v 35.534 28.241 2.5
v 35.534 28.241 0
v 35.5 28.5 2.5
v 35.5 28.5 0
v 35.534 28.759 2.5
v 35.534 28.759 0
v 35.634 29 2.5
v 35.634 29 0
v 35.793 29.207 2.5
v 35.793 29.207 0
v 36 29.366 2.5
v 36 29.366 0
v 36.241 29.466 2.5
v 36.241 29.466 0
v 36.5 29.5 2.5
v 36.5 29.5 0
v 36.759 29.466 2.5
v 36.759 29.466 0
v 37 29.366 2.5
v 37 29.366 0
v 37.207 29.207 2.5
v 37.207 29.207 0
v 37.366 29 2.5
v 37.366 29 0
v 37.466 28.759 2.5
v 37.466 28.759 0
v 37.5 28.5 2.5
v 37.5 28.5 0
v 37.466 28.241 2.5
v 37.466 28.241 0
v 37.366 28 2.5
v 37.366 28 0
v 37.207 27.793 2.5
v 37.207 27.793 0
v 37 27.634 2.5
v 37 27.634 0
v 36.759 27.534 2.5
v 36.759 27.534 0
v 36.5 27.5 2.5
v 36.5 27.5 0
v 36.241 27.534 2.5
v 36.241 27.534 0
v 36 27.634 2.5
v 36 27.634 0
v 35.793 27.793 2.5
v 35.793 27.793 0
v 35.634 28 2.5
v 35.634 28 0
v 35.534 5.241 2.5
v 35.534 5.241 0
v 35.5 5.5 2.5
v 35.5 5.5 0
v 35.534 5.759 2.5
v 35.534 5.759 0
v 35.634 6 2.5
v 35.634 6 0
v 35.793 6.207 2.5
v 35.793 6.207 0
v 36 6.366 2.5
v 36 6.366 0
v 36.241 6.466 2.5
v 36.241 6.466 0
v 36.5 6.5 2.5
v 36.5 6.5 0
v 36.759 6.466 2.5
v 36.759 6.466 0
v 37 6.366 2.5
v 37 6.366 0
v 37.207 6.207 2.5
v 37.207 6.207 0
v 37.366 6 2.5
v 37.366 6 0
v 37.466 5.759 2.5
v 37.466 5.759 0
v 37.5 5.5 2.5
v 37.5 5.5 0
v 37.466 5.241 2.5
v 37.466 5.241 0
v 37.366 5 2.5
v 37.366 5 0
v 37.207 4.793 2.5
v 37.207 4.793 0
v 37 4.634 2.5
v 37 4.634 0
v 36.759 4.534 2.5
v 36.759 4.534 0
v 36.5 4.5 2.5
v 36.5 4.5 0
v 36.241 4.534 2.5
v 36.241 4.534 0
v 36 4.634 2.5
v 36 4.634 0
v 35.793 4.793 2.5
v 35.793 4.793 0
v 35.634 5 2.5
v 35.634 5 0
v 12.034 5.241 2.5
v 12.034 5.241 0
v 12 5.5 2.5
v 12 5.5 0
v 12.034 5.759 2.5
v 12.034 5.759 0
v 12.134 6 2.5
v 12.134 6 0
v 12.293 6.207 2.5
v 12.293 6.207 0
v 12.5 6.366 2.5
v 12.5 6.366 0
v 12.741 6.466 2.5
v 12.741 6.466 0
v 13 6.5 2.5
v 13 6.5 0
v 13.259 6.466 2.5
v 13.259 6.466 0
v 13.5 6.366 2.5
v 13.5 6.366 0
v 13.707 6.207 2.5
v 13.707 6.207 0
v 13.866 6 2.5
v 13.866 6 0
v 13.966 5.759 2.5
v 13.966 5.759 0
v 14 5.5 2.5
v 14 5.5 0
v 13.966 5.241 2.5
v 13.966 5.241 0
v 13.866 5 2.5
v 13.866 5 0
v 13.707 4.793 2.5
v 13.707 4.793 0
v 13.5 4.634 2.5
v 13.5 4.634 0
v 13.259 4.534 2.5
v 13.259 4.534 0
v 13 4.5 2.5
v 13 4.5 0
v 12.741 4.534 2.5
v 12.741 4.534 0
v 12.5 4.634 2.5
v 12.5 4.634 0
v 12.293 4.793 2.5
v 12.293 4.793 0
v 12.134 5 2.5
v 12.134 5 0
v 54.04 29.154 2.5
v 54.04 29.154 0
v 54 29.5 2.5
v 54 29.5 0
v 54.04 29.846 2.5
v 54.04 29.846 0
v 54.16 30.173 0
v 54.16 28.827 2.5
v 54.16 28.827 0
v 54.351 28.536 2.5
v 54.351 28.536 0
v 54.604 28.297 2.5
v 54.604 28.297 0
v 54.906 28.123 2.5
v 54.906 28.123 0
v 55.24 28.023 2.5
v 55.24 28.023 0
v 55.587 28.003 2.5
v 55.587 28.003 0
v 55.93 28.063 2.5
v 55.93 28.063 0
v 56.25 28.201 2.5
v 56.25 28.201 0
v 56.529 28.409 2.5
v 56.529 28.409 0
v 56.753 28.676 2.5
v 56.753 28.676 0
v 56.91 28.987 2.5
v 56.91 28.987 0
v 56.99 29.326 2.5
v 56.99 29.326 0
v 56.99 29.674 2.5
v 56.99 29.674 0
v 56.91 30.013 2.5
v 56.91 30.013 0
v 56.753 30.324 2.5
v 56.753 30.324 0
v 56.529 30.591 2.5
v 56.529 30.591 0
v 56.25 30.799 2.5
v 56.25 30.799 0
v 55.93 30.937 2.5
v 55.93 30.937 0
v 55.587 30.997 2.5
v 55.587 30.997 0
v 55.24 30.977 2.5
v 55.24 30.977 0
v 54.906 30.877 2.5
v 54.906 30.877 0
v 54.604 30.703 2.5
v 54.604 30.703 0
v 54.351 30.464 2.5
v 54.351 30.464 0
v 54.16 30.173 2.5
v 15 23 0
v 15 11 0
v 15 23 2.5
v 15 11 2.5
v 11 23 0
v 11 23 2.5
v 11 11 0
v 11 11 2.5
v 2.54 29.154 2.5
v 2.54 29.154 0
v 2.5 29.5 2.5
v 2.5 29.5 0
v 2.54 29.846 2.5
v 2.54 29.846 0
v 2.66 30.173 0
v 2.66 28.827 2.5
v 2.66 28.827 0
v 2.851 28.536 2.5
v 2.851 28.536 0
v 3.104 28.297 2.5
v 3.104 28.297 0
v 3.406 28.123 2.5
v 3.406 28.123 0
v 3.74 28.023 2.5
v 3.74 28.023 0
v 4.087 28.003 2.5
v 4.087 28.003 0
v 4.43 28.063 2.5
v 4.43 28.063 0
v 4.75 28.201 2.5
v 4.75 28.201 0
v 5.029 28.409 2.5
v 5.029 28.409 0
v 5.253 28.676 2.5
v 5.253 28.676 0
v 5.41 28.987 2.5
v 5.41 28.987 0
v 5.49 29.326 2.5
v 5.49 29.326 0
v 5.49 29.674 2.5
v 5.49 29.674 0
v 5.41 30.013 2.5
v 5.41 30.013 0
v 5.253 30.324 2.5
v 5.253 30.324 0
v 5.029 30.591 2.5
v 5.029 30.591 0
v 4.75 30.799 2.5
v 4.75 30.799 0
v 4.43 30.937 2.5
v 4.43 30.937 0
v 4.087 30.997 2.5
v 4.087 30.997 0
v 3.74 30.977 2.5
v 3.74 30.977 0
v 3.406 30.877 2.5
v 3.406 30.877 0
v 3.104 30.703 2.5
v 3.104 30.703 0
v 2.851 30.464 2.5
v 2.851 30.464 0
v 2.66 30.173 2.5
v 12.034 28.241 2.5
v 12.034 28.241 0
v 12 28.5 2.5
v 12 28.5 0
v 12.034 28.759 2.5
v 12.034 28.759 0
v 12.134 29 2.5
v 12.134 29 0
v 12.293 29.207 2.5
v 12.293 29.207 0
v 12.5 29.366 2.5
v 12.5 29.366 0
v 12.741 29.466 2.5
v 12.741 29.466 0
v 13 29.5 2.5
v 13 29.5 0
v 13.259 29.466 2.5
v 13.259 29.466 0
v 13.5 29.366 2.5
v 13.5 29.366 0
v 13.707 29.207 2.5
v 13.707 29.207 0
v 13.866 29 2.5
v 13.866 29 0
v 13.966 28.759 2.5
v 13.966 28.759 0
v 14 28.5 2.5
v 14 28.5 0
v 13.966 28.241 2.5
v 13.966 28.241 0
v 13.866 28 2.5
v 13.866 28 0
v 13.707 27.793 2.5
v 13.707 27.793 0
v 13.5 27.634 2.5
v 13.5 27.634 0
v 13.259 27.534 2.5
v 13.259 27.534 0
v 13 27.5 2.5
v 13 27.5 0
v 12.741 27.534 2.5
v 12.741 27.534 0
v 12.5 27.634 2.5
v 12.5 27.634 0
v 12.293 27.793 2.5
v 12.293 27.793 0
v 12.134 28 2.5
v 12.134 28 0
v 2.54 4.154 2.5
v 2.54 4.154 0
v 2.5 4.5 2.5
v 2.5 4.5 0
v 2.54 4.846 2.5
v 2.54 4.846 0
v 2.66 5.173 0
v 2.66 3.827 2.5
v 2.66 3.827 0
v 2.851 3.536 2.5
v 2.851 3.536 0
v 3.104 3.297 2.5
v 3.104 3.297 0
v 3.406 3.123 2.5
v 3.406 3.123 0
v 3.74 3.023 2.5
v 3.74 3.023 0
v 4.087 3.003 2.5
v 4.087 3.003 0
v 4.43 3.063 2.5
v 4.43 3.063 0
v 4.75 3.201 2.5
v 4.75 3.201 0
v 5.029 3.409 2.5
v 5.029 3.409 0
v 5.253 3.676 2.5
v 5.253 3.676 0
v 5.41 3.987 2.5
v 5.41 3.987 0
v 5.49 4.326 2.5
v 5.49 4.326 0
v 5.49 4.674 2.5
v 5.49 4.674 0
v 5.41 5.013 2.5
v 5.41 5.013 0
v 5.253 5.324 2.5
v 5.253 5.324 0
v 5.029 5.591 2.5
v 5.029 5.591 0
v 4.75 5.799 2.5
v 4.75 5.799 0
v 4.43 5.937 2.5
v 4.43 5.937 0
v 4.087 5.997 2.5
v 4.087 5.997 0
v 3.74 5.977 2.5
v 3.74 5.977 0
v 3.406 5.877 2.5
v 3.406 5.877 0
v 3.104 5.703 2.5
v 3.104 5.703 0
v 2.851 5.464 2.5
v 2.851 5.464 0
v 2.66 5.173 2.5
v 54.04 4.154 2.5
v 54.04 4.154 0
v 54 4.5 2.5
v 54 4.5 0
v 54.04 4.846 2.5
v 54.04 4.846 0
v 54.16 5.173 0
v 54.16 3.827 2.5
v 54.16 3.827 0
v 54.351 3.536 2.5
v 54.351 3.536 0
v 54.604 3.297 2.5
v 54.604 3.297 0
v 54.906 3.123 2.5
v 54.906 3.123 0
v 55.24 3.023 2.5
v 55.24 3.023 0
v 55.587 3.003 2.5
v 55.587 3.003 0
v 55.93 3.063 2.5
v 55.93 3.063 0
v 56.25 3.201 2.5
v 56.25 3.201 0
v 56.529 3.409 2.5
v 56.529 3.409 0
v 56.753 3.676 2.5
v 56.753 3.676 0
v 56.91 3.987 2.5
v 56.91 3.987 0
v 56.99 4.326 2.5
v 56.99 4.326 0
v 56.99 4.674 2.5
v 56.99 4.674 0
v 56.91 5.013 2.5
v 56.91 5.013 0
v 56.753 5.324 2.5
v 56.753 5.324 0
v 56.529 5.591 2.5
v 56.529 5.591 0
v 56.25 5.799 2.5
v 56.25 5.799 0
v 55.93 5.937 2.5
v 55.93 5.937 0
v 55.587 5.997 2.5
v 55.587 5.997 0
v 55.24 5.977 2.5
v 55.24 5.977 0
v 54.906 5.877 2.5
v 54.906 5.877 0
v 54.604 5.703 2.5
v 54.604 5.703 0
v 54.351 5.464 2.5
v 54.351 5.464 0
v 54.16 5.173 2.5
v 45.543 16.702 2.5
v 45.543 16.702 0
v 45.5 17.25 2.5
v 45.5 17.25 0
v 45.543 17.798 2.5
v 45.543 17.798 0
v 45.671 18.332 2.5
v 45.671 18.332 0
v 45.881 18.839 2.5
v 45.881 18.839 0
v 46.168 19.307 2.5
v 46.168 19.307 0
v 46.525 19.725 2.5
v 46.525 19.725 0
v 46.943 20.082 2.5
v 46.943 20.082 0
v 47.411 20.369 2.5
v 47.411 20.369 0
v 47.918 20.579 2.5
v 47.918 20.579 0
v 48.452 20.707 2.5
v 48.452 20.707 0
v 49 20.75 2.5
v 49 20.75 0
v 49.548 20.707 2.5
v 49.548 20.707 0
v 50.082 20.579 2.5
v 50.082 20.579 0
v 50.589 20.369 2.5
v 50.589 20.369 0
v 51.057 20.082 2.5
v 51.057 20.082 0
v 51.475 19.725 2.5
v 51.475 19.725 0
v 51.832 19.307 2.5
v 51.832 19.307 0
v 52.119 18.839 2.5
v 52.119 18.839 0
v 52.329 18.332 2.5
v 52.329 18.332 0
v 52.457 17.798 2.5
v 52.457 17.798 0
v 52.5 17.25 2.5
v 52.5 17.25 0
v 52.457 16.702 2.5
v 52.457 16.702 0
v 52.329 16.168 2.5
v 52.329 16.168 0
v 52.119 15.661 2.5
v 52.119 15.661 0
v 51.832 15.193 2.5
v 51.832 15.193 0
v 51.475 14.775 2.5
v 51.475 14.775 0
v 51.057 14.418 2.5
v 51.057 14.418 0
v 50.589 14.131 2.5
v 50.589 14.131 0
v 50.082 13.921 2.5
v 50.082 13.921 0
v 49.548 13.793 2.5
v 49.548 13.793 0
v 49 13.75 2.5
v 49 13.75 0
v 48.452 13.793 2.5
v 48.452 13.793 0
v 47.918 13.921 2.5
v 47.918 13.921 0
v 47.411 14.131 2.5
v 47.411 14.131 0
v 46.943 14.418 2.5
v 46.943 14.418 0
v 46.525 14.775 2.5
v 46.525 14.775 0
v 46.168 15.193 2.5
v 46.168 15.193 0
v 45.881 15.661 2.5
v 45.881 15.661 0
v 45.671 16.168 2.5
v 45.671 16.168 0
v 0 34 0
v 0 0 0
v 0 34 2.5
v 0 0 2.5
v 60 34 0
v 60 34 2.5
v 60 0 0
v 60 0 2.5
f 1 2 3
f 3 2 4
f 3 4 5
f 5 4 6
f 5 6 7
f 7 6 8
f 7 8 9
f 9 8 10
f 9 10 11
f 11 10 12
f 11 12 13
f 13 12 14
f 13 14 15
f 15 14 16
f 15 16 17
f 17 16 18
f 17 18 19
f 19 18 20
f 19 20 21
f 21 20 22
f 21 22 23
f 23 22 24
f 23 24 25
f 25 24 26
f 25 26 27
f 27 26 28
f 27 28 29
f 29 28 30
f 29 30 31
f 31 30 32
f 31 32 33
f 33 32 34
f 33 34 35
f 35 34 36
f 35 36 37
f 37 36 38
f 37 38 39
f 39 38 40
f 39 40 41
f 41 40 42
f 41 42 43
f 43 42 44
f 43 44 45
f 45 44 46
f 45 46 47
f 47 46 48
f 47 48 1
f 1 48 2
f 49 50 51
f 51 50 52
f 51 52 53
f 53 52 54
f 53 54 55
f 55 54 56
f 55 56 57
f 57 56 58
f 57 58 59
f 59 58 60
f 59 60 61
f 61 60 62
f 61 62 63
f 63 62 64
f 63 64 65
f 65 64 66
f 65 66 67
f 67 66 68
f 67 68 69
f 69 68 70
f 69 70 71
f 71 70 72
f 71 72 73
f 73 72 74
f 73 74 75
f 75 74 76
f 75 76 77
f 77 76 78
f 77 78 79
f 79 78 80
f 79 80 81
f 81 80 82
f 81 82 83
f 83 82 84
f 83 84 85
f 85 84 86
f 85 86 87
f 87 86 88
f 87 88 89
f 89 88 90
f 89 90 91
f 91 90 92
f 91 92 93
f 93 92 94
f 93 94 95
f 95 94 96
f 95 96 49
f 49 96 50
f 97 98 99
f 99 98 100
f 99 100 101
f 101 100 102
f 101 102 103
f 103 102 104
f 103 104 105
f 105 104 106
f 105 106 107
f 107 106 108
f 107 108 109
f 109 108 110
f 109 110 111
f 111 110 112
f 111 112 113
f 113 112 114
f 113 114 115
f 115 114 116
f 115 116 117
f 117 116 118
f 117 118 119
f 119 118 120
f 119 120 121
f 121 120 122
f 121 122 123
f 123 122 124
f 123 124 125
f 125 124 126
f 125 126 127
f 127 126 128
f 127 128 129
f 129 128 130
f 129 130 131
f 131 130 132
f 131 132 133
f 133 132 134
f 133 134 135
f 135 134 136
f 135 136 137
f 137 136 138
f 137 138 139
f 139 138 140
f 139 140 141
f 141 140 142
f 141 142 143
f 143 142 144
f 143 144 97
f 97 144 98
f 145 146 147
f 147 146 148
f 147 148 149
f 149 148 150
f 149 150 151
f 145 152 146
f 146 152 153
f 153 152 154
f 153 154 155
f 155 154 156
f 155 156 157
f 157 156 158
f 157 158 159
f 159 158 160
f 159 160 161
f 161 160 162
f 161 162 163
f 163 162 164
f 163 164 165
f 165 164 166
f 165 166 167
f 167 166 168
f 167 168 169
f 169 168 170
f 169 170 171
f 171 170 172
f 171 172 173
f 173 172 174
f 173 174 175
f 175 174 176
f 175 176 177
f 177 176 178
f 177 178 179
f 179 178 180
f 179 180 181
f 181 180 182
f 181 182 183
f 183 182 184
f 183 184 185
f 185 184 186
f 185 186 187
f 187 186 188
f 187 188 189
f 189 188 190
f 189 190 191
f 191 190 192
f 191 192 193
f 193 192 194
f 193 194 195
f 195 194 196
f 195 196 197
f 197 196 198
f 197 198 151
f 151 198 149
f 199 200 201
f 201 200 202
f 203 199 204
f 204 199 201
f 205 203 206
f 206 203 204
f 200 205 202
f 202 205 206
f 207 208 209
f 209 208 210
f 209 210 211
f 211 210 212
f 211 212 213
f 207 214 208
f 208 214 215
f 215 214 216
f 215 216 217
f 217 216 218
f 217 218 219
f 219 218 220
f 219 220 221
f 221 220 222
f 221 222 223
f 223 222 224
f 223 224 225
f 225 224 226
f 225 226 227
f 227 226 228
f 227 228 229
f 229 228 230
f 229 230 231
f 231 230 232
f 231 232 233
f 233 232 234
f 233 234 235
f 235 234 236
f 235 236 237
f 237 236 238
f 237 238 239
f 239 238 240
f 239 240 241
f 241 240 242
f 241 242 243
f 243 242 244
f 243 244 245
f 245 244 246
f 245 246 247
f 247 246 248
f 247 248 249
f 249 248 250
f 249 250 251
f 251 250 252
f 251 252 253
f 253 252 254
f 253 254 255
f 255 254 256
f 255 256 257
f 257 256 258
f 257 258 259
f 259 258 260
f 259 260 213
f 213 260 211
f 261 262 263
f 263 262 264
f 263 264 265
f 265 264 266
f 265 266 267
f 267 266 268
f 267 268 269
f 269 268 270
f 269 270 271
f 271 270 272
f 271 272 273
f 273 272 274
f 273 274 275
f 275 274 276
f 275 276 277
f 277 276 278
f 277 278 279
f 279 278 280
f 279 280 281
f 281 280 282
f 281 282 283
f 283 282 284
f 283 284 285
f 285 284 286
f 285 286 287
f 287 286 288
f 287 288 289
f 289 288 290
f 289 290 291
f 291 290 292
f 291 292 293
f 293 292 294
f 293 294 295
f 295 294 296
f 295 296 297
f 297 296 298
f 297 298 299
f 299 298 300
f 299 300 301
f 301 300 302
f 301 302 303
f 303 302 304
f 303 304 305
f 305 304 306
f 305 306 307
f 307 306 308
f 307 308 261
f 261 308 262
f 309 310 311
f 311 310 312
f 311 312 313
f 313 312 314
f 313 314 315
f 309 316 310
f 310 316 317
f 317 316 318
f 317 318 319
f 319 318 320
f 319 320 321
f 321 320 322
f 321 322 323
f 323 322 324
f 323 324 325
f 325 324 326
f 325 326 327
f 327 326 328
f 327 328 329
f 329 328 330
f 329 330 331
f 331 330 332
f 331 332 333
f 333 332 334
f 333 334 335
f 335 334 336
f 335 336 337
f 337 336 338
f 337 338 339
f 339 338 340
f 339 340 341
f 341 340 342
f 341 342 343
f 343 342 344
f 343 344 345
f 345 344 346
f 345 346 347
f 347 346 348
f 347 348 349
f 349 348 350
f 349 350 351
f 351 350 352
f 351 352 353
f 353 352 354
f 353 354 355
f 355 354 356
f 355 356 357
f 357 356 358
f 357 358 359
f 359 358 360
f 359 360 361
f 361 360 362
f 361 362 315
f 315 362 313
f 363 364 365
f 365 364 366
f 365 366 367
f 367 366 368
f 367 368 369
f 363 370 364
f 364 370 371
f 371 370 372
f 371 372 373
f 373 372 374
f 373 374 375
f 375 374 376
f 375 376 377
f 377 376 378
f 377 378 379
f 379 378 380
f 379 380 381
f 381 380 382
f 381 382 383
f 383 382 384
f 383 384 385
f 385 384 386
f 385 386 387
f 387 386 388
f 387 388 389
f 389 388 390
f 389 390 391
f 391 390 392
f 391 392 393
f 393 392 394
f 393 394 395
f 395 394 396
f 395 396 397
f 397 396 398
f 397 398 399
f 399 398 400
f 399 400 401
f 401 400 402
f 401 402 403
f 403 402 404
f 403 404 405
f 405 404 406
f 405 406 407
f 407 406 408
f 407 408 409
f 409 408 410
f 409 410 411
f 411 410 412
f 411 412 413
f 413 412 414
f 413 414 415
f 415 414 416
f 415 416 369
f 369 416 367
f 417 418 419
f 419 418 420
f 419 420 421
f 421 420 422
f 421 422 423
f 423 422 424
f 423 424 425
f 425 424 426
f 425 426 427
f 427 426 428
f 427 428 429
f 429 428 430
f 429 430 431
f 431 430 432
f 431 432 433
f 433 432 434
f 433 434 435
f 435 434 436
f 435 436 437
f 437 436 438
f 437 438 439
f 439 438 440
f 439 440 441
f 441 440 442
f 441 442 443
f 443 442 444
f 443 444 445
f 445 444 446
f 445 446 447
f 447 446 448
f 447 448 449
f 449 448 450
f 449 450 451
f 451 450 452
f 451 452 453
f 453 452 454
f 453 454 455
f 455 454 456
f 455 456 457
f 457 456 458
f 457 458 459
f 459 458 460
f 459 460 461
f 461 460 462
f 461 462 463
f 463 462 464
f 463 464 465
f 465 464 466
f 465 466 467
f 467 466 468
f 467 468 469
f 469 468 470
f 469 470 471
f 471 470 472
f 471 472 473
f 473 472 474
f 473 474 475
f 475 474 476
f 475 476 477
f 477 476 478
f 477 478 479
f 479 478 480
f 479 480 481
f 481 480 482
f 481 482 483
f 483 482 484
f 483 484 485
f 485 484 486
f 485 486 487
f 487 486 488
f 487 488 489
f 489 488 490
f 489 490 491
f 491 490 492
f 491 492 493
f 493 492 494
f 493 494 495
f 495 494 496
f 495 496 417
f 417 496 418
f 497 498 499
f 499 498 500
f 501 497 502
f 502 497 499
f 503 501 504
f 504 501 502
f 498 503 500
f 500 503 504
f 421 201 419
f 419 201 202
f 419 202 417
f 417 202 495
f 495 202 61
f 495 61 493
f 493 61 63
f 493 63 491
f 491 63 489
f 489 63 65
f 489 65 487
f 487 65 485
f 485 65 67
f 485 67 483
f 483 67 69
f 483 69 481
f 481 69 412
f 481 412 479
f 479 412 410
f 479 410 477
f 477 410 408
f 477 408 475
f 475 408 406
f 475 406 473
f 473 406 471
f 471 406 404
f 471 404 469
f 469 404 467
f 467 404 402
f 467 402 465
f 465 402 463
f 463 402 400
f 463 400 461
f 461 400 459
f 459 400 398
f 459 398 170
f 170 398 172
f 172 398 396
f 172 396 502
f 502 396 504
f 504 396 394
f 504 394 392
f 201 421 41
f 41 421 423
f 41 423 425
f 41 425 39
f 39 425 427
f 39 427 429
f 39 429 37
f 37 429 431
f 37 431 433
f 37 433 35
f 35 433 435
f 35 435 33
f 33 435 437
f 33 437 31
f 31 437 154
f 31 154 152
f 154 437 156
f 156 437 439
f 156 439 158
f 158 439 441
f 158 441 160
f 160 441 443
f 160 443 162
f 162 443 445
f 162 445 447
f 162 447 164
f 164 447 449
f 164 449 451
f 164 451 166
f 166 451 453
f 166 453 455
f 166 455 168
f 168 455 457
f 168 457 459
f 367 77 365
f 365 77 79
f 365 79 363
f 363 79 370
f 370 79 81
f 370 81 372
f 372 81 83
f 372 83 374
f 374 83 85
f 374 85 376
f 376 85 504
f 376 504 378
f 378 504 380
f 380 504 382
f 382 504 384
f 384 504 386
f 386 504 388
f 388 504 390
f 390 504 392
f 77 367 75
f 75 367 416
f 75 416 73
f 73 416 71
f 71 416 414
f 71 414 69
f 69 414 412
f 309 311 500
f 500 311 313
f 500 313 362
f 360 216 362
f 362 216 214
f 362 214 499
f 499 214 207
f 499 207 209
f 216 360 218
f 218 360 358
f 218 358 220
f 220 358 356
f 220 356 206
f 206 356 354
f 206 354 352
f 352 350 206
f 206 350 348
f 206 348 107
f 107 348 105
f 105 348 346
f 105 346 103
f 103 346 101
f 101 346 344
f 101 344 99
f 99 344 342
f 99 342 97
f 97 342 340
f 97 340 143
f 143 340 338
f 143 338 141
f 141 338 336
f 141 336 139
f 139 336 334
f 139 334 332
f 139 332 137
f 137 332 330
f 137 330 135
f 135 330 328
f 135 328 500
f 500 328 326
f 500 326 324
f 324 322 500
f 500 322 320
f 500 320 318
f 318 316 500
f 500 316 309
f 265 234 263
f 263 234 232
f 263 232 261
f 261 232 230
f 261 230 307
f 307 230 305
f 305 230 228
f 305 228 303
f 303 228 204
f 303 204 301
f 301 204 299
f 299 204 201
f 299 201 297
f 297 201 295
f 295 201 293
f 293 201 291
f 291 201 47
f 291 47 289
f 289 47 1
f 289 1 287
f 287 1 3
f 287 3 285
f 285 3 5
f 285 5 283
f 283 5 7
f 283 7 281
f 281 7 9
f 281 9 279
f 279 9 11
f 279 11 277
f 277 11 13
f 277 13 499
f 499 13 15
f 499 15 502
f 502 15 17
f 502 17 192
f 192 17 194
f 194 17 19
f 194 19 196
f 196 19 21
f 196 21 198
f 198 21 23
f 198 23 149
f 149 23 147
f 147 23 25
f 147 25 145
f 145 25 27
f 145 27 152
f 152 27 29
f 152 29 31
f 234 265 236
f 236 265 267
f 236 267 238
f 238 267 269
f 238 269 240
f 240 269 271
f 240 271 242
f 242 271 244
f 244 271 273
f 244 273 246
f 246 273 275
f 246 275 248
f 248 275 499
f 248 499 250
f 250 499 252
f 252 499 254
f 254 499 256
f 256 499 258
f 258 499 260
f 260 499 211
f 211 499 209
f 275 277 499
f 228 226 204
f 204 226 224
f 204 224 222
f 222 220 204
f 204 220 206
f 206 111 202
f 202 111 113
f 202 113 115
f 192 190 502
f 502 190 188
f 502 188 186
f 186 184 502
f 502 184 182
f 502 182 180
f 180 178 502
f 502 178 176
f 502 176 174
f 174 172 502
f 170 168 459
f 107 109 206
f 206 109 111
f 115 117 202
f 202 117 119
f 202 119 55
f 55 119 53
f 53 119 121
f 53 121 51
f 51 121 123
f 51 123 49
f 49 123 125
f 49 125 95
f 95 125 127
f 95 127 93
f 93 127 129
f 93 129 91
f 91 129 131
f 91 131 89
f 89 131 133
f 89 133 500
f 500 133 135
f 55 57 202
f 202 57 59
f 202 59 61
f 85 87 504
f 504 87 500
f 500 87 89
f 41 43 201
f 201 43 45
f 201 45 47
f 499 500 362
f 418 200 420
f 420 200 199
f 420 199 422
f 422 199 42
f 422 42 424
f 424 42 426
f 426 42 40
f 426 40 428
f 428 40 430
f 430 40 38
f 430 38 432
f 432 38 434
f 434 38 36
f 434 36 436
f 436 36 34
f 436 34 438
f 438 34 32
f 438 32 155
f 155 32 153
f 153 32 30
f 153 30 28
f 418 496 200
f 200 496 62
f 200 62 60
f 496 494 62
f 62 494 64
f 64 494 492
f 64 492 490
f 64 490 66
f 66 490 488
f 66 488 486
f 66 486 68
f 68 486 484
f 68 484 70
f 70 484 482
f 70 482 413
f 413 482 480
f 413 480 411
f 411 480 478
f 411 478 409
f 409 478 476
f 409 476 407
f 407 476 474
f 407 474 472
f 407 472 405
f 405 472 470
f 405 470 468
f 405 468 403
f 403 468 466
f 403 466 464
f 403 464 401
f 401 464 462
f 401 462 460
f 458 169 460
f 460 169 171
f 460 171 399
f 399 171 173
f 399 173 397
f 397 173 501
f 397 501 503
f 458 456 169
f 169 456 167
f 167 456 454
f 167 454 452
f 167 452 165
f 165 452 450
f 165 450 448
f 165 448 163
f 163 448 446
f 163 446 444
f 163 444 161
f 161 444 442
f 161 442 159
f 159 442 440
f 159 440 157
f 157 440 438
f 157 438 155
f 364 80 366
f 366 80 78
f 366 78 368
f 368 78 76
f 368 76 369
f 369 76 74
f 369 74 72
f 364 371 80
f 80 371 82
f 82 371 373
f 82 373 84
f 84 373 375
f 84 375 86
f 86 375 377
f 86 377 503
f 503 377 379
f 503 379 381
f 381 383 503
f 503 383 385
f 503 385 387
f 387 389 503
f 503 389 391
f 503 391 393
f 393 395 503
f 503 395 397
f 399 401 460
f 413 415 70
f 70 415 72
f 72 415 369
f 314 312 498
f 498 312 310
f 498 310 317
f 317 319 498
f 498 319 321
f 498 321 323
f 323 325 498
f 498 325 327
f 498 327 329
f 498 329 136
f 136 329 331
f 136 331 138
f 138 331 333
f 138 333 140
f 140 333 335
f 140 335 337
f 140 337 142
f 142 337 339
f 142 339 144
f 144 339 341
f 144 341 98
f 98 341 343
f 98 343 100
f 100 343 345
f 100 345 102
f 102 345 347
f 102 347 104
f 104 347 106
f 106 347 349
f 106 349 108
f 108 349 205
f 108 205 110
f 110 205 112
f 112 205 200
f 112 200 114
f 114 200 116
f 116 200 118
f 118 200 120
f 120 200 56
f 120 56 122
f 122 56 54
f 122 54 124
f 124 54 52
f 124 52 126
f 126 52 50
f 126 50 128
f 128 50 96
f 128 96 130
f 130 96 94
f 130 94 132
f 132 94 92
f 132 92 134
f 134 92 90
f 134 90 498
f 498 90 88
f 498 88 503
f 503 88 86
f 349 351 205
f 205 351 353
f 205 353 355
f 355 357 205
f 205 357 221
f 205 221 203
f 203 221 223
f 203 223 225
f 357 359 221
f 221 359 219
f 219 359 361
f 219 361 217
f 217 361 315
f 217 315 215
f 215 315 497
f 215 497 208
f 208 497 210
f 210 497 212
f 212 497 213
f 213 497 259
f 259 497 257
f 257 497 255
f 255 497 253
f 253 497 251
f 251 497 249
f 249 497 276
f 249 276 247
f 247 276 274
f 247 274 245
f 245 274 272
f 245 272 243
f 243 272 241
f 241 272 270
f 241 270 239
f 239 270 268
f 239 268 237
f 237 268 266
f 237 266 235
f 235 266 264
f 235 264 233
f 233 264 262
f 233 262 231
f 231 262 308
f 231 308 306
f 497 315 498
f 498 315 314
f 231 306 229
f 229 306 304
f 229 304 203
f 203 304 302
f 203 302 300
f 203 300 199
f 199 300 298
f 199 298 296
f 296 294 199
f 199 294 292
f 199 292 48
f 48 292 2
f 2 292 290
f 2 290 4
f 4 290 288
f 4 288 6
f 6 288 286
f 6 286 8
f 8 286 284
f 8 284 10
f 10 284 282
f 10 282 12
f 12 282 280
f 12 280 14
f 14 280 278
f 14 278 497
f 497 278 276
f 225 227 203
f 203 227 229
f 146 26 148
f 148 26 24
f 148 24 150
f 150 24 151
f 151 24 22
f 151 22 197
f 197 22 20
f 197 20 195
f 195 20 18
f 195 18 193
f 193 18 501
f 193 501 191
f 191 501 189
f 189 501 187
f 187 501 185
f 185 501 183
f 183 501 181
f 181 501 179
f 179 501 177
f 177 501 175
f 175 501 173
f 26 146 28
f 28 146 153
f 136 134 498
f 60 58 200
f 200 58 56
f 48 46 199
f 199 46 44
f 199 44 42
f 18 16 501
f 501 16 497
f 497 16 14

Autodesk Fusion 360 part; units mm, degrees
sketch "Skizze1" plane through (0, 0, 0) normal (0, 0, 1) x (1, 0, 0)
  line L0 (0, 0) -> (60, 0)
  line L1 (60, 0) -> (60, 34)
  line L2 (60, 34) -> (0, 34)
  line L3 (0, 34) -> (0, 0)
  circle A0 centre (4, 4.5) radius 1.5
  circle A1 centre (55.5, 4.5) radius 1.5
  circle A2 centre (55.5, 4.5) radius 1.5
  circle A3 centre (4, 4.5) radius 1.5
  line L4 (0, 0) -> (60, 0)
  circle A4 centre (55.5, 29.5) radius 1.5
  circle A5 centre (4, 29.5) radius 1.5
  circle A6 centre (55.5, 29.5) radius 1.5
  circle A7 centre (4, 29.5) radius 1.5
  circle A8 centre (13, 28.5) radius 1
  circle A9 centre (13, 5.5) radius 1
  circle A10 centre (36.5, 5.5) radius 1
  circle A11 centre (36.5, 28.5) radius 1
  line L5 (11, 23) -> (15, 23)
  line L6 (15, 23) -> (15, 11)
  line L7 (15, 11) -> (11, 11)
  line L8 (11, 11) -> (11, 23)
  circle A12 centre (49, 17.25) radius 3.5
  point P0 (51.5, 0)
  point P1 (51.5, 0)
  point P2 (51.5, 0)
  point P3 (51.5, 0)
  dimension "d1" = 60
  dimension "d2" = 34
  dimension "d3" = 3
  dimension "d4" = 3
  dimension "d5" = 60
  dimension "d6" = 3
  dimension "d7" = 3
  dimension "d8" = 3
  dimension "d9" = 3
  dimension "d10" = 3
  dimension "d11" = 3
  dimension "d12" = 2
  dimension "d13" = 2
  dimension "d14" = 2
  dimension "d15" = 2
  dimension "d16" = 7
extrude "Extrusion1" add sketch "Skizze1" along normal blind 2.5
